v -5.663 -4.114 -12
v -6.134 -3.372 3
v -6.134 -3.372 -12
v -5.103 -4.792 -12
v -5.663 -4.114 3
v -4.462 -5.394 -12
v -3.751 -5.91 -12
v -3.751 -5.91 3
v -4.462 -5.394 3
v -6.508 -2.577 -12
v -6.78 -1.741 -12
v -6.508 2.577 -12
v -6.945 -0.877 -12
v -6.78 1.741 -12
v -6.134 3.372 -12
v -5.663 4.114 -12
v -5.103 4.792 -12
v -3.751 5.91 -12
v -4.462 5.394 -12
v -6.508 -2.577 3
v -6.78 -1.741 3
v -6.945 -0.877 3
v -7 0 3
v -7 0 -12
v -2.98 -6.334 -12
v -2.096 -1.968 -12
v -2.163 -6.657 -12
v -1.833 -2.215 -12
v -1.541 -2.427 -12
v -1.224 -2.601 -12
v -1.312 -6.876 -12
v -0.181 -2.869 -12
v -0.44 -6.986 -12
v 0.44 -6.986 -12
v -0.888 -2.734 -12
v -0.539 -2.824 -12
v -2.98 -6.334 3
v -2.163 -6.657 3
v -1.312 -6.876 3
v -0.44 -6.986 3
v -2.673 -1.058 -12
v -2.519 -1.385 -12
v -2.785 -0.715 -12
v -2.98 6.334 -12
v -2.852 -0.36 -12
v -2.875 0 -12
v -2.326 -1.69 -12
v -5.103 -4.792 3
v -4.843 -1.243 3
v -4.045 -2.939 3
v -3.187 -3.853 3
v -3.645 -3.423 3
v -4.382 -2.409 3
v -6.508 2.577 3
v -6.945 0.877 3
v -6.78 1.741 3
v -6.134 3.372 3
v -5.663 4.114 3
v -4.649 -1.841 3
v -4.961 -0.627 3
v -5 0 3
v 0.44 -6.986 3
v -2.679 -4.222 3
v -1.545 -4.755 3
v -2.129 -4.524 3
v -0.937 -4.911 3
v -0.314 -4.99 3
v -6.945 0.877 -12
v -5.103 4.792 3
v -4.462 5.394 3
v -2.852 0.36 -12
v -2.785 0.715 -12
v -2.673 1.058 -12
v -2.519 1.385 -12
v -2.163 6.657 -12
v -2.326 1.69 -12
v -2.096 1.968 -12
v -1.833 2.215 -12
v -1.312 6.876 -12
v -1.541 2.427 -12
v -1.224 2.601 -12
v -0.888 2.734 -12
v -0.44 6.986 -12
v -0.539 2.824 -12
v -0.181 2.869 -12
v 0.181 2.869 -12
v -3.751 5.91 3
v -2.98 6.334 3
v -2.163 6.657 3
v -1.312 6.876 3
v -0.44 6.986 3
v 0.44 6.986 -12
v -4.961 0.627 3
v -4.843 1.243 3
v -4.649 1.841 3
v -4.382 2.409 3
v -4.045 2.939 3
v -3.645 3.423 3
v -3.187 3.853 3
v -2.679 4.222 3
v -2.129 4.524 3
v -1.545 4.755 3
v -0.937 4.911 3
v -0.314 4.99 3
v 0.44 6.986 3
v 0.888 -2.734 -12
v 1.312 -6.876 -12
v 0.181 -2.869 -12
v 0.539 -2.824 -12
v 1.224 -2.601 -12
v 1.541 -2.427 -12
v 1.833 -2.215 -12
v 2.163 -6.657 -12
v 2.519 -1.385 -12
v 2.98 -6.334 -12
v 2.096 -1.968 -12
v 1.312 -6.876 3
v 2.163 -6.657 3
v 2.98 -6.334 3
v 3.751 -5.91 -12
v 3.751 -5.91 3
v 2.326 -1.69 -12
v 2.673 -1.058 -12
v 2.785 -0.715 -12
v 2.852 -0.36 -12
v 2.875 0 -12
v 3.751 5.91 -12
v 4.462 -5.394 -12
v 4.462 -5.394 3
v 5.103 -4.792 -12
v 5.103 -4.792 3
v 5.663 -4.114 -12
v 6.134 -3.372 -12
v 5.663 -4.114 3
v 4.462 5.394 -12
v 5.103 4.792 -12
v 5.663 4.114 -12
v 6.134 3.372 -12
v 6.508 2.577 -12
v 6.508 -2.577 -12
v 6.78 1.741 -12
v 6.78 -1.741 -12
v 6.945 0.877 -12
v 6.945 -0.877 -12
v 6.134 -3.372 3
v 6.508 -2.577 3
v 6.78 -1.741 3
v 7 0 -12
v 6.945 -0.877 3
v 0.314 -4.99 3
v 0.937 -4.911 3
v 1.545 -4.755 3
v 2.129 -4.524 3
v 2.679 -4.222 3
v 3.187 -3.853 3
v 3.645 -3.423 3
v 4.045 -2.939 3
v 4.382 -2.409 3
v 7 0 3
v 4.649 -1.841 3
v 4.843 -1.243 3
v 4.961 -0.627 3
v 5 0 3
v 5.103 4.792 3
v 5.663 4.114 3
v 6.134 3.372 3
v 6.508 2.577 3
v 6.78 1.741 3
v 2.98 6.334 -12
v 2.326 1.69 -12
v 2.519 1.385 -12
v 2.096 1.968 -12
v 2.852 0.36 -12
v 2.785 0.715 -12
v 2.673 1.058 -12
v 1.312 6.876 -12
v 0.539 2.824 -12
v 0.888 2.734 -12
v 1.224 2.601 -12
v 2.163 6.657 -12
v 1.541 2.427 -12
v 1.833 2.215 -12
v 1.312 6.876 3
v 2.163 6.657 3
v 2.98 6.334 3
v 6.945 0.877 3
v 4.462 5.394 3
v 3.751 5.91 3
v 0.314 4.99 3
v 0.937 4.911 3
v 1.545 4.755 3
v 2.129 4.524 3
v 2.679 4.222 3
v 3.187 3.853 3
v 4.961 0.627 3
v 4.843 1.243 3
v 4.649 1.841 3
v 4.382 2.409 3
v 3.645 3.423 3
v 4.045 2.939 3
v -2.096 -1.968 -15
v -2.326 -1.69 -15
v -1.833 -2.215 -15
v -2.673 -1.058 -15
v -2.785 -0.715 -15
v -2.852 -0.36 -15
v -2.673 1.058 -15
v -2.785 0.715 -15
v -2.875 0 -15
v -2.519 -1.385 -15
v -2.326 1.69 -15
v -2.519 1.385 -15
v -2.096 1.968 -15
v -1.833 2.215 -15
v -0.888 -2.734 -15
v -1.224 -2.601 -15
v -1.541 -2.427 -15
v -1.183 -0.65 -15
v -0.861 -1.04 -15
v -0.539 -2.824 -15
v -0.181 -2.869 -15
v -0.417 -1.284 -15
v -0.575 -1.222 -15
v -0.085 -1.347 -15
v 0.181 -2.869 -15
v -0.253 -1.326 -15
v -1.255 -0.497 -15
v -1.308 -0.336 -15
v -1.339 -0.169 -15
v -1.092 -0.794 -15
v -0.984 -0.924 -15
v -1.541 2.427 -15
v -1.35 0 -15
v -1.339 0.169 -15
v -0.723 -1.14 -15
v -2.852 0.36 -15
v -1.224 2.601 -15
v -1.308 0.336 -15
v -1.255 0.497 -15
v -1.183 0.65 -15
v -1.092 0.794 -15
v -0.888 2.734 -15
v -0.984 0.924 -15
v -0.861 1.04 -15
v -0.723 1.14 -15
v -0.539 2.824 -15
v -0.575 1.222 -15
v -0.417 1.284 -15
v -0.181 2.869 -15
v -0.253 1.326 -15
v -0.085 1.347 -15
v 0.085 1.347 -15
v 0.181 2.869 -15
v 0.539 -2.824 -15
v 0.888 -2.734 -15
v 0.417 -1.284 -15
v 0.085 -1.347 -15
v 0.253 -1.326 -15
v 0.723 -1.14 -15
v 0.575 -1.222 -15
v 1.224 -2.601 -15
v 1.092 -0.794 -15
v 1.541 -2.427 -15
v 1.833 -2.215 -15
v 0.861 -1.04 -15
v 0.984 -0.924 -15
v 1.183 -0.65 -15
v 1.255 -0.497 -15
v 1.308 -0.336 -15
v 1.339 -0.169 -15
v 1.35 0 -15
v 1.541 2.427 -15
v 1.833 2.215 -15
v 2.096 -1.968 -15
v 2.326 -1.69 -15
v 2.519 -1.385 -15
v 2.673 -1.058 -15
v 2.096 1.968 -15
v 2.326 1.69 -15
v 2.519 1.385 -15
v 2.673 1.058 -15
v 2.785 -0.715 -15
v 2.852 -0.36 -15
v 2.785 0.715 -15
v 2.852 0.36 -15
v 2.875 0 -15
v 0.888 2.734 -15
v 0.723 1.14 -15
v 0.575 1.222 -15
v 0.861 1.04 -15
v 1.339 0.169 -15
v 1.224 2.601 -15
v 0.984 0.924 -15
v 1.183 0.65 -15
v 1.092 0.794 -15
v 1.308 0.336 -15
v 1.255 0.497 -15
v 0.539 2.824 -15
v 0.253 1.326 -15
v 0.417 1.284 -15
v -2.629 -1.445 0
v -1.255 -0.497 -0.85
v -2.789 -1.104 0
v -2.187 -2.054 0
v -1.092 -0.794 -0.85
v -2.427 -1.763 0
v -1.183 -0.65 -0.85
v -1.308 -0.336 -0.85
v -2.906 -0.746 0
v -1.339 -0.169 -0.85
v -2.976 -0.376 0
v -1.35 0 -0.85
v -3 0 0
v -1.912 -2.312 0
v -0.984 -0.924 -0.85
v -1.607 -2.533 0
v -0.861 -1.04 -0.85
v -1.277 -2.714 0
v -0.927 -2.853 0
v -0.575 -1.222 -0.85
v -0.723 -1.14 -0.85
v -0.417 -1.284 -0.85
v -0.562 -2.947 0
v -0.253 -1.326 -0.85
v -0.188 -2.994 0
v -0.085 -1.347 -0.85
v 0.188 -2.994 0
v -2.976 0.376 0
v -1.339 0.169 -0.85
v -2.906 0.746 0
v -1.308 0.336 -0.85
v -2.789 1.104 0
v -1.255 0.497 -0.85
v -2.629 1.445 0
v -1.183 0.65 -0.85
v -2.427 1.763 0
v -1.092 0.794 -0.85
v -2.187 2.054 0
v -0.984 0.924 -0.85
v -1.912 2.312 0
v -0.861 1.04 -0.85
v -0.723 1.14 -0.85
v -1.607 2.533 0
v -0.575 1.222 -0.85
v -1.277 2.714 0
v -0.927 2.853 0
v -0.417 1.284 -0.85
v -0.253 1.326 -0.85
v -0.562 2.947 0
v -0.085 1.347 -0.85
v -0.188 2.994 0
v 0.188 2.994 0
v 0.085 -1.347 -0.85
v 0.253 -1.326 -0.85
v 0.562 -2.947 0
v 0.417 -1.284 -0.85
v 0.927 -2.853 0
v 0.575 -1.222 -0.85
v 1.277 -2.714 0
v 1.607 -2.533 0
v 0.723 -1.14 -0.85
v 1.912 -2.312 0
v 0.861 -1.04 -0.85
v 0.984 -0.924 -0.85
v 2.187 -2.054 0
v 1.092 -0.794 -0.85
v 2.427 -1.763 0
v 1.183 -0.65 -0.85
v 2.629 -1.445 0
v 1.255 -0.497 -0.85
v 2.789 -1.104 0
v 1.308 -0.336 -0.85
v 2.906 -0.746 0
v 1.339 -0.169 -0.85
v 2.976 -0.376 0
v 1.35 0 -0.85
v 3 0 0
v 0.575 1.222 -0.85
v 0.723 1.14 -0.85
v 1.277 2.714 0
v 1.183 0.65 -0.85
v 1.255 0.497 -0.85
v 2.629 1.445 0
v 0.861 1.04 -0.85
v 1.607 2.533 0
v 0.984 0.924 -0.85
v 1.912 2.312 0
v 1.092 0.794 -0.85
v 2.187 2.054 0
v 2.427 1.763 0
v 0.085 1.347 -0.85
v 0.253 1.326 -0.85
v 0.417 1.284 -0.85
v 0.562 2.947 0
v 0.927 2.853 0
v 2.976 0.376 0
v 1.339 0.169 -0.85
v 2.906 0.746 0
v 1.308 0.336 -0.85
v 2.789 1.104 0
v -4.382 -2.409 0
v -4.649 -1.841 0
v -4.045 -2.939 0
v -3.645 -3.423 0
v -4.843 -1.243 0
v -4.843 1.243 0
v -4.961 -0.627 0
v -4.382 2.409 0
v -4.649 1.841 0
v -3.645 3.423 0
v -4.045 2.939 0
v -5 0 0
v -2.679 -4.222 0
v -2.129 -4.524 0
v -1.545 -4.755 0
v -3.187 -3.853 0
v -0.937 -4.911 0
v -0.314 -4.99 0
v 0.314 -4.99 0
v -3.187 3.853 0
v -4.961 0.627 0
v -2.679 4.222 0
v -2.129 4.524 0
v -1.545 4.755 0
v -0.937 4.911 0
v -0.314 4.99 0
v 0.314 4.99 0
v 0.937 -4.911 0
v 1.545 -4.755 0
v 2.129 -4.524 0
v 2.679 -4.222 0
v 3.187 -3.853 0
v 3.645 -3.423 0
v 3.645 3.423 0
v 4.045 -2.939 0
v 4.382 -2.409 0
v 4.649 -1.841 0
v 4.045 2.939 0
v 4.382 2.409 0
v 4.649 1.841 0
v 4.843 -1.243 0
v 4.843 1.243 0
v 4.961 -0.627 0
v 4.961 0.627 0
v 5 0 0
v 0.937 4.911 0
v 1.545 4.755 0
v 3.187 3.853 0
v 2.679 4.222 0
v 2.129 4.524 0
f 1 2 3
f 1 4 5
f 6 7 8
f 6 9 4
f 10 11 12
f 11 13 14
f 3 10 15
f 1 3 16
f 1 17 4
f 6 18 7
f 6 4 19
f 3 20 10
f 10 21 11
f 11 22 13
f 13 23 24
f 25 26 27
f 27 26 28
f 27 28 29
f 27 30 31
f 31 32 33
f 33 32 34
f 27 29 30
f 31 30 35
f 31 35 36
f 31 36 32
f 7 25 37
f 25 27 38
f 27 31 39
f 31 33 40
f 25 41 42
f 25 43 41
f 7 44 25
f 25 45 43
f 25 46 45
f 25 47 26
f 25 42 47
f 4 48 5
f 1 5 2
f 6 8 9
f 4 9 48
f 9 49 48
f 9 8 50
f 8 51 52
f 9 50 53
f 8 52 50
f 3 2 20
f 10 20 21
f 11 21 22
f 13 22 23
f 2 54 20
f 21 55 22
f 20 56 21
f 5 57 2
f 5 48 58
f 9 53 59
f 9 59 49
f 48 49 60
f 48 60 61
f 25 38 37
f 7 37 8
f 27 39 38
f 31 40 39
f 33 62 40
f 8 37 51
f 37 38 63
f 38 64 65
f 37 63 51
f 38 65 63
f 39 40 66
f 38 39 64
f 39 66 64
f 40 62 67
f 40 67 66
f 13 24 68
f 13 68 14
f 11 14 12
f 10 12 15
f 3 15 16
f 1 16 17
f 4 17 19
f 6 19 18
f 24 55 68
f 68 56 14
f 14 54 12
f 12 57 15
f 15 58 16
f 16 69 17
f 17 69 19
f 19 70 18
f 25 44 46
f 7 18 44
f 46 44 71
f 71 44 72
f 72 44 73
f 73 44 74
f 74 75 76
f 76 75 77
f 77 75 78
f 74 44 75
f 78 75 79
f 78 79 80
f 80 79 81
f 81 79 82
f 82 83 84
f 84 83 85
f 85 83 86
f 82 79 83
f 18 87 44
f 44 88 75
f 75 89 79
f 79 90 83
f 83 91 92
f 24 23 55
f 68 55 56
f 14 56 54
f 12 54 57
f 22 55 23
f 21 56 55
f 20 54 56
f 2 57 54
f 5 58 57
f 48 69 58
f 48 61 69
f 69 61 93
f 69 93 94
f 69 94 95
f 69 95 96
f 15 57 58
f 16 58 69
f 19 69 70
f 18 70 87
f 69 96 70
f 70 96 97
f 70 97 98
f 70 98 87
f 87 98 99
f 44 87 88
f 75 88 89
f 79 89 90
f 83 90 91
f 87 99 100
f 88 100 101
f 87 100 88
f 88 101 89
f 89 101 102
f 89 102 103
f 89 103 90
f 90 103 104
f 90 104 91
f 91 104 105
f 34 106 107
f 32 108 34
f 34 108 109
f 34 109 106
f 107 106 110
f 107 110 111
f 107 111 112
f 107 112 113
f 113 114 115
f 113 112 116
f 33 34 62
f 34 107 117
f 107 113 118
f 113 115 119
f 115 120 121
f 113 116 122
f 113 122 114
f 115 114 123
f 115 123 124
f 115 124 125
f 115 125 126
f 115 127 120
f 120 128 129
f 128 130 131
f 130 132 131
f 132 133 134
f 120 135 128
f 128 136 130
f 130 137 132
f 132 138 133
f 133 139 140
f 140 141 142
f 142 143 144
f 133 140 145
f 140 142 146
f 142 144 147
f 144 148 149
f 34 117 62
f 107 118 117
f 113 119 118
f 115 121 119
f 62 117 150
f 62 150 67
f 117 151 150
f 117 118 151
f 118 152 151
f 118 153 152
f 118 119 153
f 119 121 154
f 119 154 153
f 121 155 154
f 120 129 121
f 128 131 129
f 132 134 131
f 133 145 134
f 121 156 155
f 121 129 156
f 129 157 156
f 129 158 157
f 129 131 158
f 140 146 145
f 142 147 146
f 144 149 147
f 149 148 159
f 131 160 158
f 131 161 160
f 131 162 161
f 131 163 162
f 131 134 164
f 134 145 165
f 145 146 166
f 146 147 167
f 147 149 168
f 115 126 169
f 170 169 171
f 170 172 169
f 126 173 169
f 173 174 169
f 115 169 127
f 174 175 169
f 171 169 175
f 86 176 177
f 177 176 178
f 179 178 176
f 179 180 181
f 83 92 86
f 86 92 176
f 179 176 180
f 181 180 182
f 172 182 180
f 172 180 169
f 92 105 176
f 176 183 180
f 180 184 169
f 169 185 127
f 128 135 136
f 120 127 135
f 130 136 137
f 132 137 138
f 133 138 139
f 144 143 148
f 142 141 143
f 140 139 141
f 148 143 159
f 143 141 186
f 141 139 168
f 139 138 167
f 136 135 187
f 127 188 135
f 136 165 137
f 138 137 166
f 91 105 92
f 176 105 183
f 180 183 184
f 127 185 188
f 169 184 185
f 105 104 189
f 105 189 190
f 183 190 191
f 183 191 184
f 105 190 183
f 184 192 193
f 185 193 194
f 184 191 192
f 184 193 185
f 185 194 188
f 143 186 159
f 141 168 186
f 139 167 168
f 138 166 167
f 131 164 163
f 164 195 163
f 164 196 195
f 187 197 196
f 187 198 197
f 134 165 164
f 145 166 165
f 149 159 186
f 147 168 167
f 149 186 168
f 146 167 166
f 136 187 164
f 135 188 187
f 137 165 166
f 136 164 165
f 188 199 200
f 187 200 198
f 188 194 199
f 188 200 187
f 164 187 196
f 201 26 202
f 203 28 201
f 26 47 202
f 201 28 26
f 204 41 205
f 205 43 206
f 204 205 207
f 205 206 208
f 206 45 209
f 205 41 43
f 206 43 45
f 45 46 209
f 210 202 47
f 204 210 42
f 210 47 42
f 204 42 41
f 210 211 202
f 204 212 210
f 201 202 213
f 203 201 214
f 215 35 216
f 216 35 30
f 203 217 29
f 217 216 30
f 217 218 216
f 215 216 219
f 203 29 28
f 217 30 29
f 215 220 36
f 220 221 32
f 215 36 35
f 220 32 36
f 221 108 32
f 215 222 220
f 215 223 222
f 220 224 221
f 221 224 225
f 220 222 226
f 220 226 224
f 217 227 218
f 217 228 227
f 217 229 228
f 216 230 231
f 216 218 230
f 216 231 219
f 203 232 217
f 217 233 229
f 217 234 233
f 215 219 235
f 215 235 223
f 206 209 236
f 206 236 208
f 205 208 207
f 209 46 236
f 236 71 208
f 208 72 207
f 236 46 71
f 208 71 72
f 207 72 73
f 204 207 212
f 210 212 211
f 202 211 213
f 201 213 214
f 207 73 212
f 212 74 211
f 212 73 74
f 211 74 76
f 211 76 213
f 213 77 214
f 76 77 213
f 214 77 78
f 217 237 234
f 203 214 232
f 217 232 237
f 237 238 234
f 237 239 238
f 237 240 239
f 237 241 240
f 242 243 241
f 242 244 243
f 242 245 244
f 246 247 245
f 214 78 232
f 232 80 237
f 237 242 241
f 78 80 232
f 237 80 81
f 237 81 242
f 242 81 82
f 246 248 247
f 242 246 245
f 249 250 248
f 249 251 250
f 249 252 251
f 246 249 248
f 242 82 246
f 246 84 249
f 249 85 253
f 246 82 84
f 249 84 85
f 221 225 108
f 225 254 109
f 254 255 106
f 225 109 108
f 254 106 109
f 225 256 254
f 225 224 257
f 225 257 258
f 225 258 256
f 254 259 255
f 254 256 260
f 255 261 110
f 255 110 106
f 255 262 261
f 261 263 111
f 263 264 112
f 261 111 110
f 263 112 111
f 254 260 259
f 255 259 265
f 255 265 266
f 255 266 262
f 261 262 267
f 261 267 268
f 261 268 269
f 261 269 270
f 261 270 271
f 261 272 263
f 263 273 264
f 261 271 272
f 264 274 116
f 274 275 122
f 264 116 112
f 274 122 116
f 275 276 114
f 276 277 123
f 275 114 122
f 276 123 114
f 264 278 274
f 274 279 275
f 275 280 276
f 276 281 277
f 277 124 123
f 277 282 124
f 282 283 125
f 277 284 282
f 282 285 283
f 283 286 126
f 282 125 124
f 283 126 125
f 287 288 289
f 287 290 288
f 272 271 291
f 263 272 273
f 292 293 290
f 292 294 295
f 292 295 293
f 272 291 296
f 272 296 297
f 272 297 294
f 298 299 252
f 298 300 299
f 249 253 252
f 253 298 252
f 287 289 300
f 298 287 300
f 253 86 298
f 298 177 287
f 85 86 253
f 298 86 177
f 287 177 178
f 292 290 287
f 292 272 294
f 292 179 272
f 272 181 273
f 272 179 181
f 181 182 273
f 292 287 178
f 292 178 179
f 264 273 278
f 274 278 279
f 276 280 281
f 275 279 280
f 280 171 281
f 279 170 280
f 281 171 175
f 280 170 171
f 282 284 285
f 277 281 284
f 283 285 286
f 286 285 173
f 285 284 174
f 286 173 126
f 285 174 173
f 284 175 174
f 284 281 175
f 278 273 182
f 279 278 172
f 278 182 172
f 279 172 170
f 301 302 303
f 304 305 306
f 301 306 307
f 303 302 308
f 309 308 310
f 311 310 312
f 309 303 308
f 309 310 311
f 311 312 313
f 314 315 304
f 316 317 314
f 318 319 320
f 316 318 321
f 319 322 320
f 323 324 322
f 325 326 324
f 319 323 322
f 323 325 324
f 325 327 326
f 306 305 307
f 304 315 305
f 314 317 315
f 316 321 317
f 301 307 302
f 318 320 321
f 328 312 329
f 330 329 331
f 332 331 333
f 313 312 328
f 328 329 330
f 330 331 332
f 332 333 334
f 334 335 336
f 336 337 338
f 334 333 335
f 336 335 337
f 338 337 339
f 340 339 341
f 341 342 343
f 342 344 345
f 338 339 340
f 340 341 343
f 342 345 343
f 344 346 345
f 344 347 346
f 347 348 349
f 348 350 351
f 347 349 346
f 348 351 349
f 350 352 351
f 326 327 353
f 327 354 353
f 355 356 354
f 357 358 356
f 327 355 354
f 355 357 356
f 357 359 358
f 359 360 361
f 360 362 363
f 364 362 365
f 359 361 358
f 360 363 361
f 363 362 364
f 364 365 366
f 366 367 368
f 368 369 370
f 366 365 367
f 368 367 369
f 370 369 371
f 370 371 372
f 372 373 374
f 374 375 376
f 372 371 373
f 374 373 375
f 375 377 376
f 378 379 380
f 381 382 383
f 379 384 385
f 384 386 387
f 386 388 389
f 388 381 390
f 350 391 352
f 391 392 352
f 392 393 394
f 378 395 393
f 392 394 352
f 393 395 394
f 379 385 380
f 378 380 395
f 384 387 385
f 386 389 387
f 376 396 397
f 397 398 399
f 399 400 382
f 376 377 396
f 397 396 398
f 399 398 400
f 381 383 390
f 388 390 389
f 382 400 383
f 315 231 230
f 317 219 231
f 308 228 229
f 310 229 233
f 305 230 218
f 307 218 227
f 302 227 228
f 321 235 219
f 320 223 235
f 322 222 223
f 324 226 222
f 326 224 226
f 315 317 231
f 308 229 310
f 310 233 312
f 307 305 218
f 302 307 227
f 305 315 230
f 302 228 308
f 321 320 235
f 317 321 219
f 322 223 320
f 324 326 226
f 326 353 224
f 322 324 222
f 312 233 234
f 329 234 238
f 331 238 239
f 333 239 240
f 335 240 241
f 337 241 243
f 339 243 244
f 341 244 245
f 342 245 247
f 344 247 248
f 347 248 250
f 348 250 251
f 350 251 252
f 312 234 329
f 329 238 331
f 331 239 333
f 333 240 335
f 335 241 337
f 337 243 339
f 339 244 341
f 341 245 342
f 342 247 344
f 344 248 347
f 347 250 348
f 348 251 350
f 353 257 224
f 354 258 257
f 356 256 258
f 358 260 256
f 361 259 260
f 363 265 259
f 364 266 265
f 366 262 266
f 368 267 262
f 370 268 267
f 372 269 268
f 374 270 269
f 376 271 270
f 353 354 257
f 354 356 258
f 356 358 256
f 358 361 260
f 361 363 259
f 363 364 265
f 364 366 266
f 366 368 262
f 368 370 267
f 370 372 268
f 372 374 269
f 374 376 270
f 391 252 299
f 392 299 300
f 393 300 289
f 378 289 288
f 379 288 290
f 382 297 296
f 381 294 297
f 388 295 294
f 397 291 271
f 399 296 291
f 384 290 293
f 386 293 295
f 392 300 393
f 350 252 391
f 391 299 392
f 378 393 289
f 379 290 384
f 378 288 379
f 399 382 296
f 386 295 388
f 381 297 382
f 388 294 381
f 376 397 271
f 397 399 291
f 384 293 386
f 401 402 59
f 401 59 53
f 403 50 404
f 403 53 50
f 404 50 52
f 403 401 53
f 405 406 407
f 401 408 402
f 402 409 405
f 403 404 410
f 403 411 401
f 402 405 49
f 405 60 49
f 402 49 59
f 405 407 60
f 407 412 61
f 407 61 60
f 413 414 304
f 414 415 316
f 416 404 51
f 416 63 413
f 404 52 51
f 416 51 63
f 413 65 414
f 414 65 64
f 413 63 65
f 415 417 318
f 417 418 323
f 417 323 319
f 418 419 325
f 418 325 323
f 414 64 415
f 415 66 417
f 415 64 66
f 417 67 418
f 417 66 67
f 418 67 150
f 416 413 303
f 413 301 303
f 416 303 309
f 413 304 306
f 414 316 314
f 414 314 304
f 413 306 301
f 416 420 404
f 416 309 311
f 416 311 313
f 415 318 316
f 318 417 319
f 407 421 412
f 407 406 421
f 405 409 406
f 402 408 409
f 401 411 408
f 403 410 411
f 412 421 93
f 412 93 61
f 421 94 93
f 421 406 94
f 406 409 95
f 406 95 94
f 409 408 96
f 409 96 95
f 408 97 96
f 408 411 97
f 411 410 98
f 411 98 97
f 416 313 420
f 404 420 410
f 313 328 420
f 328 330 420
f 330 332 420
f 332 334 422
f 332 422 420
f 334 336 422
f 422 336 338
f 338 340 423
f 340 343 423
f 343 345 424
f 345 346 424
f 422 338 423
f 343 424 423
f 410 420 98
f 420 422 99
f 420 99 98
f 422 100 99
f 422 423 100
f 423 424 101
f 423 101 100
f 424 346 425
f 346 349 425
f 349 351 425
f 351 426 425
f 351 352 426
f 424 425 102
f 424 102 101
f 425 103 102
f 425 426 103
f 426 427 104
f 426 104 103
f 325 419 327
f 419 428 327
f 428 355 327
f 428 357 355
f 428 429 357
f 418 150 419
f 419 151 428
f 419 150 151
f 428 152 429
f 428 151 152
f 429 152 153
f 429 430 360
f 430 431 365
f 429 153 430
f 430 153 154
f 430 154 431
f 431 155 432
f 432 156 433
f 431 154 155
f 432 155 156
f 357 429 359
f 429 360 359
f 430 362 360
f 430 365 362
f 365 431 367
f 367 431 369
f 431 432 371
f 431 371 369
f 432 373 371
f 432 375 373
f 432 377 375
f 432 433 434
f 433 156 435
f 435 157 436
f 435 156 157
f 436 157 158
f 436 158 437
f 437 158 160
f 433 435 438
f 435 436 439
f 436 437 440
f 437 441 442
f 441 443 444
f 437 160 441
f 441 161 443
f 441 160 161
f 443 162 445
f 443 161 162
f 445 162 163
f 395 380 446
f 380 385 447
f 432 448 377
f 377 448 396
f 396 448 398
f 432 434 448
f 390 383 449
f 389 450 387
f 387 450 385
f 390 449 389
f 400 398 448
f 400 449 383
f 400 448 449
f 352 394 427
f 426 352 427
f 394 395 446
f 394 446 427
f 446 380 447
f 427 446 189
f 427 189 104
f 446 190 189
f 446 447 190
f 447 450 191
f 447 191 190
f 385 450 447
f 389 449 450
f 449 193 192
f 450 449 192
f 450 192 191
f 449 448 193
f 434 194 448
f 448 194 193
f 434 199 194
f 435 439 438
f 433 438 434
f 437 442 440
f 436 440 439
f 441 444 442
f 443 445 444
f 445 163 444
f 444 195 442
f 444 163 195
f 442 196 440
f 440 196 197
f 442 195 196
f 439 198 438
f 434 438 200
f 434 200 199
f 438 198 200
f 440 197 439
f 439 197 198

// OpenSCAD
$fn = 50;

difference() {
	union() {
		translate(v = [0, 0, -12.0]) {
			cylinder(h = 15, r = 7.0);
		}
		#translate(v = [0, 0, -15.0]) {
			cylinder(h = 15, r = 2.875);
		}
	}
	union() {
		translate(v = [0, 0, 0]) {
			rotate(a = [0, 0, 0]) {
				difference() {
					union() {
						translate(v = [0, 0, -15.0]) {
							cylinder(h = 15, r = 1.0);
						}
						translate(v = [0, 0, -0.85]) {
							cylinder(h = 0.85, r1 = 1.35, r2 = 3.0);
						}
						translate(v = [0, 0, -15.0]) {
							cylinder(h = 15, r = 1.35);
						}
						translate(v = [0, 0, -15.0]) {
							cylinder(h = 15, r = 1.0);
						}
					}
					union();
				}
			}
		}
		#cylinder(h = 3, r = 5.0);
	}
}
